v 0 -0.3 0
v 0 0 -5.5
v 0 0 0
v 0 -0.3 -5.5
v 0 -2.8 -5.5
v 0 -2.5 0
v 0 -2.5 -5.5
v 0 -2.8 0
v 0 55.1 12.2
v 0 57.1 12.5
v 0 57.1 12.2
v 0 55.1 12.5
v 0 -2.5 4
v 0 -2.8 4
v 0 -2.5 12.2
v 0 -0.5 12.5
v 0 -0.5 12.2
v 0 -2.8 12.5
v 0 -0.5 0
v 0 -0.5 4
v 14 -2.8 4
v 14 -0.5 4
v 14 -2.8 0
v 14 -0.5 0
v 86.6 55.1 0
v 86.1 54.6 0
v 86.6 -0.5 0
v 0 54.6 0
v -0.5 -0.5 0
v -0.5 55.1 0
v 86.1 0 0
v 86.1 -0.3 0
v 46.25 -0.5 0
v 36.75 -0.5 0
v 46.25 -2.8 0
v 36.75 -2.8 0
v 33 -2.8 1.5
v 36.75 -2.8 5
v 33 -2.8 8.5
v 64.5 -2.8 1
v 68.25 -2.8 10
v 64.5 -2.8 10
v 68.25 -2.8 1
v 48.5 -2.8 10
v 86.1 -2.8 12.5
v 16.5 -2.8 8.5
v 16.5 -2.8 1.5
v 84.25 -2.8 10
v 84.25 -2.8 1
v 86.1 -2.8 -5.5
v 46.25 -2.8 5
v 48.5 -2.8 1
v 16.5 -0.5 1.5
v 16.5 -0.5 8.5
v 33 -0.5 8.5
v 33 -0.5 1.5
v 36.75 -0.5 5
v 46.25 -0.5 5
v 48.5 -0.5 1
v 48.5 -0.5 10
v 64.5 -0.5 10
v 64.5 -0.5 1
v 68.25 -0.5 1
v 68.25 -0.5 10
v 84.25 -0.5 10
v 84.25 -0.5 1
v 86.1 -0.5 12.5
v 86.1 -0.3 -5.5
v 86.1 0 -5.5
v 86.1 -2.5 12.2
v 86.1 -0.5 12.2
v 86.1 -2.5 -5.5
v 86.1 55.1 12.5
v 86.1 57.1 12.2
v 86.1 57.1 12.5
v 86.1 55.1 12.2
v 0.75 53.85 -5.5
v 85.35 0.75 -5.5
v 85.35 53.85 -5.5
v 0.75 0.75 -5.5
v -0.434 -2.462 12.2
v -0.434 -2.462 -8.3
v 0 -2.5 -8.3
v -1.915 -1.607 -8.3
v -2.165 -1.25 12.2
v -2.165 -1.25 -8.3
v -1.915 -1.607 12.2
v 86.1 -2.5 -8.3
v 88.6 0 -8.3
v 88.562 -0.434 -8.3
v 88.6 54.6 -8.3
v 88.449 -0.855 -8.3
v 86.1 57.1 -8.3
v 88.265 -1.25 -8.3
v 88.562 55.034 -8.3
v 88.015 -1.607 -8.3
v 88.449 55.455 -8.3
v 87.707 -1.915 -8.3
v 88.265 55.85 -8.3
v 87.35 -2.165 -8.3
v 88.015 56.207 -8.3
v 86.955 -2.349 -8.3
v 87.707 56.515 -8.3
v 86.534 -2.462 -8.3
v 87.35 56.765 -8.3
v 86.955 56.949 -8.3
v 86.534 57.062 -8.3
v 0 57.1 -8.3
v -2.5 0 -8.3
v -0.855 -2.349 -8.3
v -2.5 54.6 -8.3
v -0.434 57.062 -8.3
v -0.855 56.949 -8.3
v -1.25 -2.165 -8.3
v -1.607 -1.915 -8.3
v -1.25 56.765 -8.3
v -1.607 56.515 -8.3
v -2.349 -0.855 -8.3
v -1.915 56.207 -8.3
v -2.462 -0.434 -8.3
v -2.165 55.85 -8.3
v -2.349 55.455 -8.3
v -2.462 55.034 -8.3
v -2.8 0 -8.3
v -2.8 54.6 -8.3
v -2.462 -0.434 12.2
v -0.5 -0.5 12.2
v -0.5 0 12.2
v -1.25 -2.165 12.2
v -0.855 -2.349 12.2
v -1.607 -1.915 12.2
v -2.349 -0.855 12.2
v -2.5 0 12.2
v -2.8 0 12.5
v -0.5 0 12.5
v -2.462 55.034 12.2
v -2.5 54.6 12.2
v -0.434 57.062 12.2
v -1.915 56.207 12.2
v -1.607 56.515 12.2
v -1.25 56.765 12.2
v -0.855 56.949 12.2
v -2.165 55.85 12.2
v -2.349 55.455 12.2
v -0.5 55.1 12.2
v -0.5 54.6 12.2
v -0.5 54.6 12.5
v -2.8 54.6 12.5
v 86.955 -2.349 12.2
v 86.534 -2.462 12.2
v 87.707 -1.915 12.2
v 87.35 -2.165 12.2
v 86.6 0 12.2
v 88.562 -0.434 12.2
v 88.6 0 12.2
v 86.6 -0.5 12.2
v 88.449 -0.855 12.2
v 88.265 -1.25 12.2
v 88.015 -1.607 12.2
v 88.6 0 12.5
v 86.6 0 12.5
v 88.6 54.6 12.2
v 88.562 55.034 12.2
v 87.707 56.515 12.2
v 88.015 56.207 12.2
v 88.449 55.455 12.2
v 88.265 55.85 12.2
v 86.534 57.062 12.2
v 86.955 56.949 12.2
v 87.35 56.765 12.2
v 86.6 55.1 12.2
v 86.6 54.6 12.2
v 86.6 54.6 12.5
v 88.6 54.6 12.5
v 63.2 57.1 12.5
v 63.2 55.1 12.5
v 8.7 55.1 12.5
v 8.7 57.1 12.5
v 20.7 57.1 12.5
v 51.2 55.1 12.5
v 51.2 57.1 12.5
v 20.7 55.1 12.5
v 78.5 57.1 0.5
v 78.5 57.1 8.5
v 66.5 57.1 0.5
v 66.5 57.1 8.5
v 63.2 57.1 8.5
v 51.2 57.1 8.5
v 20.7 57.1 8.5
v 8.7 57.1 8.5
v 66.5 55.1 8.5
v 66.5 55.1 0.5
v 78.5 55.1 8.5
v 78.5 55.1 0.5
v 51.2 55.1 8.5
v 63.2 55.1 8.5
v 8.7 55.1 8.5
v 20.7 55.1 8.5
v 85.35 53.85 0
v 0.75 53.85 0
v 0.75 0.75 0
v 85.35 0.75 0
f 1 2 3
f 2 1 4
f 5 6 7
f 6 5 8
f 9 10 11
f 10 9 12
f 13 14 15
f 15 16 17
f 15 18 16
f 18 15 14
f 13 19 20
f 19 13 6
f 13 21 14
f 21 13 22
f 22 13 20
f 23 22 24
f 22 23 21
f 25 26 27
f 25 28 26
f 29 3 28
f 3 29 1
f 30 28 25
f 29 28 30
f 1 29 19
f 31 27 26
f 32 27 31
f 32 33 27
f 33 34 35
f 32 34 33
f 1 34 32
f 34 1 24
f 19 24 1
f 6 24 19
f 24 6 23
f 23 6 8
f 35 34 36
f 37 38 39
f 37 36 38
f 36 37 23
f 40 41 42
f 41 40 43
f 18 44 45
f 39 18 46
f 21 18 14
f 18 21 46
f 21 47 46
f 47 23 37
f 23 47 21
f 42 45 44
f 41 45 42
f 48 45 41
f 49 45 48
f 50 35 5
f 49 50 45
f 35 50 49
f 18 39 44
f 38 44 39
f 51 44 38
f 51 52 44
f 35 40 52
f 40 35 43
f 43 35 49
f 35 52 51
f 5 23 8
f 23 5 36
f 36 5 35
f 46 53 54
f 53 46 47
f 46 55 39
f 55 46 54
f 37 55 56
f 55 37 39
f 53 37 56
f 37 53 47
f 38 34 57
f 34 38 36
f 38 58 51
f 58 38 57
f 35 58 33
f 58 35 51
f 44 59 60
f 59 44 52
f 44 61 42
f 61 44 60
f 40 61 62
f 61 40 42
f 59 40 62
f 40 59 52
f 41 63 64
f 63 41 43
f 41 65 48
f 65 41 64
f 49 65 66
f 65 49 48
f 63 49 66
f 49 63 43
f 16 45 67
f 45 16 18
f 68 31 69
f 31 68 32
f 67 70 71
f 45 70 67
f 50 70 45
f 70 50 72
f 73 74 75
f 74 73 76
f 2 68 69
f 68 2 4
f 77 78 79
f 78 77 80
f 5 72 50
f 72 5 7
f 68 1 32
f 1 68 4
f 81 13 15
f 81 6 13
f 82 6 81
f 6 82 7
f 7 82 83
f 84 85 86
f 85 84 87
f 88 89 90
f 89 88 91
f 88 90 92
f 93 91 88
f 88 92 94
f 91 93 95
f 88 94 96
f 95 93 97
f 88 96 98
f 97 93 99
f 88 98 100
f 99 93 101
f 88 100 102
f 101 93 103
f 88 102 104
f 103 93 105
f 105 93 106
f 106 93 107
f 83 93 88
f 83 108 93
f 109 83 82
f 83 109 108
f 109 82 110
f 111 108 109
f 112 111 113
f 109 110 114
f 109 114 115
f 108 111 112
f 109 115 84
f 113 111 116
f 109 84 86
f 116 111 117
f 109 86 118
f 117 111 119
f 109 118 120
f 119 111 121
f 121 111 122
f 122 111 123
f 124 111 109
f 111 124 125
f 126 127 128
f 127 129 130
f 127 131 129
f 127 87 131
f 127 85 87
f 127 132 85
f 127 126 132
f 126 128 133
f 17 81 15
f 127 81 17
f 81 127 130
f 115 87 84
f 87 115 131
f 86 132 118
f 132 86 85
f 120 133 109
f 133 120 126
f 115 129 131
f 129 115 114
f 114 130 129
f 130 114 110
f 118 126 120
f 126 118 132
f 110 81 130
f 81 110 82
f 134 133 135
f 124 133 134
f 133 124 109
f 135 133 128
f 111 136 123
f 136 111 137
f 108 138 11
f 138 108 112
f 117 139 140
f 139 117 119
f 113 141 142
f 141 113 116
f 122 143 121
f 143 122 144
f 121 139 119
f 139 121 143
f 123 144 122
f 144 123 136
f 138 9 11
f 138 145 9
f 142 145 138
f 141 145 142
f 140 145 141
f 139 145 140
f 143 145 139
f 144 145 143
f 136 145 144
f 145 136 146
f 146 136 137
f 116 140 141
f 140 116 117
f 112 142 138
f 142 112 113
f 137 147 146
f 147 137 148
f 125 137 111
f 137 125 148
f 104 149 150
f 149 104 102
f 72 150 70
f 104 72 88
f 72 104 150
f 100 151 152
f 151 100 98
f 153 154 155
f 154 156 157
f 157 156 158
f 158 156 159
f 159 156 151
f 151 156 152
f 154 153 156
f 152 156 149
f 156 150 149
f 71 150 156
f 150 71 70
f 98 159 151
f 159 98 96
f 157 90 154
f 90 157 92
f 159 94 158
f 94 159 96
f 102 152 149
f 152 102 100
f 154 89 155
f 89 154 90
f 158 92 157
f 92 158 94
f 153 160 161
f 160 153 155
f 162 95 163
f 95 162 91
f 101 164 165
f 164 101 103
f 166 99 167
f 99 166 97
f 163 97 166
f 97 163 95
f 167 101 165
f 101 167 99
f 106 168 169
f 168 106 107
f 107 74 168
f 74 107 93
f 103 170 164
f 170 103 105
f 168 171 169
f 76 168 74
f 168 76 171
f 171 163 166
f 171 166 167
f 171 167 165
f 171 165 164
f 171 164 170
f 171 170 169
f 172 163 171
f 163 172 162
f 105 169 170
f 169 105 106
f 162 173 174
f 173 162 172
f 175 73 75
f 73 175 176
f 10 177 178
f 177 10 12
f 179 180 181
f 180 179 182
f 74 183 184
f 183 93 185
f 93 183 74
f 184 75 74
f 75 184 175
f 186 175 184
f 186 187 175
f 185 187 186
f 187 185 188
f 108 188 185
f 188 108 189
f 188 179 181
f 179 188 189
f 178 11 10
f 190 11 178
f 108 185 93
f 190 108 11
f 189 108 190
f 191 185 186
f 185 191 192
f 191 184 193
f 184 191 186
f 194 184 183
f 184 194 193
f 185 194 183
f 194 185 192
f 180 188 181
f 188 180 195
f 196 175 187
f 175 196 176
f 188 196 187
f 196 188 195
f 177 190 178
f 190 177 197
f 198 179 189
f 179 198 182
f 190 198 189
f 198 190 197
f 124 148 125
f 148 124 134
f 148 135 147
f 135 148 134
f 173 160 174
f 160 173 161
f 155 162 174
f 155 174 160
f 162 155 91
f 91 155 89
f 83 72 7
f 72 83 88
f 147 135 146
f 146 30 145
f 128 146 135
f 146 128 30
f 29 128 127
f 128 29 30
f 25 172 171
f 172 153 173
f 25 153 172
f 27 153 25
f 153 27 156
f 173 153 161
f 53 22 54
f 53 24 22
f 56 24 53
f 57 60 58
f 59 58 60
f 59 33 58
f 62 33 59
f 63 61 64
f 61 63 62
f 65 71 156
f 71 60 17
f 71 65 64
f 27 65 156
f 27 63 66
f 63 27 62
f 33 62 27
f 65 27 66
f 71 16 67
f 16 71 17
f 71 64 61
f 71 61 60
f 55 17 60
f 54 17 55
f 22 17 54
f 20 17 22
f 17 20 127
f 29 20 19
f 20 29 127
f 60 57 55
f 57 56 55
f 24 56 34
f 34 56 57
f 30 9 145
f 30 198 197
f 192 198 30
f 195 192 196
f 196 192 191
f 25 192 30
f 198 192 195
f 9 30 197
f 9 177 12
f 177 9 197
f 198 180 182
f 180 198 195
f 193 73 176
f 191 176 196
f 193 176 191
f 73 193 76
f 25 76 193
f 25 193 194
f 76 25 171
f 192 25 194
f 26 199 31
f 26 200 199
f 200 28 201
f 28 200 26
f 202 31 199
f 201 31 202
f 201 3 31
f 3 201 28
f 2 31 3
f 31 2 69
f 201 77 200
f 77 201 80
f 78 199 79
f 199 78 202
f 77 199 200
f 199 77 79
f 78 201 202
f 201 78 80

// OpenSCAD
w = 85; /* width of 96Boards */
d = 54; /* depth of 96boaeds */

m = 0.6; /* margin for the plastic shrinking */

iw = w + m + 0.5; /* internal width, requires additional 0.5mm for LeMaker's HiKey, since LS connector has 0.5 offset */
id = d + m; /* internal depth */

r = 2.0; /* connector relief */
l = 0.75; /* ledge thickness */ 
t = 2.5; /* thickness 2mm is too thin, 3mm is too thick */
h = 18.0; /* height */
b = 5.5; /* bottom clearance */

it = t + (m/2); /* translate with margin */
im = (m/2); /* translate with margin */

difference() {
	union() {
		/* front face */
		difference() {
			translate([0, -it, -b]) {
				cube([iw, t, h]);
			}
			union() {
				translate([1 - (r/2), -it, 1 - (r/2)]) {
					cube([12 + r, 15 + im, 2 + r]);
				}
				translate([17.5 - (r/2), -it, 2.5 - (r/2)]) {
					cube([14.5 + r, 9 + im, 5 + r]);
				}
				translate([37.75 - (r/2), -it, 1 - (r/2)]) {
					cube([7.5 + r, 5.25 + im, 3 + r]);
				}
				translate([49.5 - (r/2), -it, 2 - (r/2)]) {
					cube([14 + r, 14 + im, 7 + r]);
				}
				translate([69.25 - (r/2), -it, 2 - (r/2)]) {
					cube([14 + r, 14 + im, 7 + r]);
				}
			}
		}

		/* left face */
		intersection() {
			translate([0, 0, -b - it]) {
				cylinder(h = h + t, r1 = t, r2 = t, $fn = 36 + im);
			}
			translate([-it, -it, -b - it]) {
				cube([t + im, t + im, h + t + im]);
			}
		}
		translate([-it, 0, -b - it]) {
			cube([t + im, id, h + t + im]);
		}
		intersection() {
			translate([0, id, -b - it]) {
				cylinder(h = h + t, r1 = t, r2 = t, $fn = 36 + im);
			}
			translate([-it, id, -b - it]) {
				cube([t + im, t, h + t + im]);
			}
		}

		/* right face */
		intersection() {
			translate([iw, 0, -b - it]) {
				cylinder(h = h + t, r1 = t, r2 = t, $fn = 36 + im);
			}
			translate([iw, -t, -b - it]) {
				cube([t, t, h + t + im]);
			}
		}
		translate([iw, 0, -b - it]) {
			cube([t, id, h + t + im]);
		}
		intersection() {
			translate([iw, id, -b - it]) {
				cylinder(h = h + t, r1 = t, r2 = t, $fn = 36 + im);
			}
			translate([iw, id, -b - it]) {
				cube([t, t, h + t + im]);
			}
		}

		/* back face */
		difference() {
			translate([0, id, -b]) {
				cube([iw, t, h]);
			}
			translate([67.5 - (r/2), 42 + it, 1.5 - (r/2)]) {
				cube([10 + r, 12 + im, 6 + r]);
			}
			translate([52.2 - (r/2), 42 + it, 9.5 - (r/2)]) {
				cube([10 + r, 19 + im, 6 + r]);
			}
			translate([9.7 - (r/2), 42 + it, 9.5 - (r/2)]) {
				cube([10 + r, 19 + im, 6 + r]);
			}
		}

		/* bottom face */
		translate([0, -t, -b - it]) {
			cube([iw, id + 2*t, t + im]);
		}
	}

	translate([-.5, -.5, 0]) {
		cube([iw+1, id+1, h]);
	}

}

/* ledge */
difference() {
	translate([0, 0, -b]) {
		cube([iw, id, b]);
	}
	translate([l, l, -b]) {
		cube([iw - 2*l, id - 2*l, b]);
	}
}
